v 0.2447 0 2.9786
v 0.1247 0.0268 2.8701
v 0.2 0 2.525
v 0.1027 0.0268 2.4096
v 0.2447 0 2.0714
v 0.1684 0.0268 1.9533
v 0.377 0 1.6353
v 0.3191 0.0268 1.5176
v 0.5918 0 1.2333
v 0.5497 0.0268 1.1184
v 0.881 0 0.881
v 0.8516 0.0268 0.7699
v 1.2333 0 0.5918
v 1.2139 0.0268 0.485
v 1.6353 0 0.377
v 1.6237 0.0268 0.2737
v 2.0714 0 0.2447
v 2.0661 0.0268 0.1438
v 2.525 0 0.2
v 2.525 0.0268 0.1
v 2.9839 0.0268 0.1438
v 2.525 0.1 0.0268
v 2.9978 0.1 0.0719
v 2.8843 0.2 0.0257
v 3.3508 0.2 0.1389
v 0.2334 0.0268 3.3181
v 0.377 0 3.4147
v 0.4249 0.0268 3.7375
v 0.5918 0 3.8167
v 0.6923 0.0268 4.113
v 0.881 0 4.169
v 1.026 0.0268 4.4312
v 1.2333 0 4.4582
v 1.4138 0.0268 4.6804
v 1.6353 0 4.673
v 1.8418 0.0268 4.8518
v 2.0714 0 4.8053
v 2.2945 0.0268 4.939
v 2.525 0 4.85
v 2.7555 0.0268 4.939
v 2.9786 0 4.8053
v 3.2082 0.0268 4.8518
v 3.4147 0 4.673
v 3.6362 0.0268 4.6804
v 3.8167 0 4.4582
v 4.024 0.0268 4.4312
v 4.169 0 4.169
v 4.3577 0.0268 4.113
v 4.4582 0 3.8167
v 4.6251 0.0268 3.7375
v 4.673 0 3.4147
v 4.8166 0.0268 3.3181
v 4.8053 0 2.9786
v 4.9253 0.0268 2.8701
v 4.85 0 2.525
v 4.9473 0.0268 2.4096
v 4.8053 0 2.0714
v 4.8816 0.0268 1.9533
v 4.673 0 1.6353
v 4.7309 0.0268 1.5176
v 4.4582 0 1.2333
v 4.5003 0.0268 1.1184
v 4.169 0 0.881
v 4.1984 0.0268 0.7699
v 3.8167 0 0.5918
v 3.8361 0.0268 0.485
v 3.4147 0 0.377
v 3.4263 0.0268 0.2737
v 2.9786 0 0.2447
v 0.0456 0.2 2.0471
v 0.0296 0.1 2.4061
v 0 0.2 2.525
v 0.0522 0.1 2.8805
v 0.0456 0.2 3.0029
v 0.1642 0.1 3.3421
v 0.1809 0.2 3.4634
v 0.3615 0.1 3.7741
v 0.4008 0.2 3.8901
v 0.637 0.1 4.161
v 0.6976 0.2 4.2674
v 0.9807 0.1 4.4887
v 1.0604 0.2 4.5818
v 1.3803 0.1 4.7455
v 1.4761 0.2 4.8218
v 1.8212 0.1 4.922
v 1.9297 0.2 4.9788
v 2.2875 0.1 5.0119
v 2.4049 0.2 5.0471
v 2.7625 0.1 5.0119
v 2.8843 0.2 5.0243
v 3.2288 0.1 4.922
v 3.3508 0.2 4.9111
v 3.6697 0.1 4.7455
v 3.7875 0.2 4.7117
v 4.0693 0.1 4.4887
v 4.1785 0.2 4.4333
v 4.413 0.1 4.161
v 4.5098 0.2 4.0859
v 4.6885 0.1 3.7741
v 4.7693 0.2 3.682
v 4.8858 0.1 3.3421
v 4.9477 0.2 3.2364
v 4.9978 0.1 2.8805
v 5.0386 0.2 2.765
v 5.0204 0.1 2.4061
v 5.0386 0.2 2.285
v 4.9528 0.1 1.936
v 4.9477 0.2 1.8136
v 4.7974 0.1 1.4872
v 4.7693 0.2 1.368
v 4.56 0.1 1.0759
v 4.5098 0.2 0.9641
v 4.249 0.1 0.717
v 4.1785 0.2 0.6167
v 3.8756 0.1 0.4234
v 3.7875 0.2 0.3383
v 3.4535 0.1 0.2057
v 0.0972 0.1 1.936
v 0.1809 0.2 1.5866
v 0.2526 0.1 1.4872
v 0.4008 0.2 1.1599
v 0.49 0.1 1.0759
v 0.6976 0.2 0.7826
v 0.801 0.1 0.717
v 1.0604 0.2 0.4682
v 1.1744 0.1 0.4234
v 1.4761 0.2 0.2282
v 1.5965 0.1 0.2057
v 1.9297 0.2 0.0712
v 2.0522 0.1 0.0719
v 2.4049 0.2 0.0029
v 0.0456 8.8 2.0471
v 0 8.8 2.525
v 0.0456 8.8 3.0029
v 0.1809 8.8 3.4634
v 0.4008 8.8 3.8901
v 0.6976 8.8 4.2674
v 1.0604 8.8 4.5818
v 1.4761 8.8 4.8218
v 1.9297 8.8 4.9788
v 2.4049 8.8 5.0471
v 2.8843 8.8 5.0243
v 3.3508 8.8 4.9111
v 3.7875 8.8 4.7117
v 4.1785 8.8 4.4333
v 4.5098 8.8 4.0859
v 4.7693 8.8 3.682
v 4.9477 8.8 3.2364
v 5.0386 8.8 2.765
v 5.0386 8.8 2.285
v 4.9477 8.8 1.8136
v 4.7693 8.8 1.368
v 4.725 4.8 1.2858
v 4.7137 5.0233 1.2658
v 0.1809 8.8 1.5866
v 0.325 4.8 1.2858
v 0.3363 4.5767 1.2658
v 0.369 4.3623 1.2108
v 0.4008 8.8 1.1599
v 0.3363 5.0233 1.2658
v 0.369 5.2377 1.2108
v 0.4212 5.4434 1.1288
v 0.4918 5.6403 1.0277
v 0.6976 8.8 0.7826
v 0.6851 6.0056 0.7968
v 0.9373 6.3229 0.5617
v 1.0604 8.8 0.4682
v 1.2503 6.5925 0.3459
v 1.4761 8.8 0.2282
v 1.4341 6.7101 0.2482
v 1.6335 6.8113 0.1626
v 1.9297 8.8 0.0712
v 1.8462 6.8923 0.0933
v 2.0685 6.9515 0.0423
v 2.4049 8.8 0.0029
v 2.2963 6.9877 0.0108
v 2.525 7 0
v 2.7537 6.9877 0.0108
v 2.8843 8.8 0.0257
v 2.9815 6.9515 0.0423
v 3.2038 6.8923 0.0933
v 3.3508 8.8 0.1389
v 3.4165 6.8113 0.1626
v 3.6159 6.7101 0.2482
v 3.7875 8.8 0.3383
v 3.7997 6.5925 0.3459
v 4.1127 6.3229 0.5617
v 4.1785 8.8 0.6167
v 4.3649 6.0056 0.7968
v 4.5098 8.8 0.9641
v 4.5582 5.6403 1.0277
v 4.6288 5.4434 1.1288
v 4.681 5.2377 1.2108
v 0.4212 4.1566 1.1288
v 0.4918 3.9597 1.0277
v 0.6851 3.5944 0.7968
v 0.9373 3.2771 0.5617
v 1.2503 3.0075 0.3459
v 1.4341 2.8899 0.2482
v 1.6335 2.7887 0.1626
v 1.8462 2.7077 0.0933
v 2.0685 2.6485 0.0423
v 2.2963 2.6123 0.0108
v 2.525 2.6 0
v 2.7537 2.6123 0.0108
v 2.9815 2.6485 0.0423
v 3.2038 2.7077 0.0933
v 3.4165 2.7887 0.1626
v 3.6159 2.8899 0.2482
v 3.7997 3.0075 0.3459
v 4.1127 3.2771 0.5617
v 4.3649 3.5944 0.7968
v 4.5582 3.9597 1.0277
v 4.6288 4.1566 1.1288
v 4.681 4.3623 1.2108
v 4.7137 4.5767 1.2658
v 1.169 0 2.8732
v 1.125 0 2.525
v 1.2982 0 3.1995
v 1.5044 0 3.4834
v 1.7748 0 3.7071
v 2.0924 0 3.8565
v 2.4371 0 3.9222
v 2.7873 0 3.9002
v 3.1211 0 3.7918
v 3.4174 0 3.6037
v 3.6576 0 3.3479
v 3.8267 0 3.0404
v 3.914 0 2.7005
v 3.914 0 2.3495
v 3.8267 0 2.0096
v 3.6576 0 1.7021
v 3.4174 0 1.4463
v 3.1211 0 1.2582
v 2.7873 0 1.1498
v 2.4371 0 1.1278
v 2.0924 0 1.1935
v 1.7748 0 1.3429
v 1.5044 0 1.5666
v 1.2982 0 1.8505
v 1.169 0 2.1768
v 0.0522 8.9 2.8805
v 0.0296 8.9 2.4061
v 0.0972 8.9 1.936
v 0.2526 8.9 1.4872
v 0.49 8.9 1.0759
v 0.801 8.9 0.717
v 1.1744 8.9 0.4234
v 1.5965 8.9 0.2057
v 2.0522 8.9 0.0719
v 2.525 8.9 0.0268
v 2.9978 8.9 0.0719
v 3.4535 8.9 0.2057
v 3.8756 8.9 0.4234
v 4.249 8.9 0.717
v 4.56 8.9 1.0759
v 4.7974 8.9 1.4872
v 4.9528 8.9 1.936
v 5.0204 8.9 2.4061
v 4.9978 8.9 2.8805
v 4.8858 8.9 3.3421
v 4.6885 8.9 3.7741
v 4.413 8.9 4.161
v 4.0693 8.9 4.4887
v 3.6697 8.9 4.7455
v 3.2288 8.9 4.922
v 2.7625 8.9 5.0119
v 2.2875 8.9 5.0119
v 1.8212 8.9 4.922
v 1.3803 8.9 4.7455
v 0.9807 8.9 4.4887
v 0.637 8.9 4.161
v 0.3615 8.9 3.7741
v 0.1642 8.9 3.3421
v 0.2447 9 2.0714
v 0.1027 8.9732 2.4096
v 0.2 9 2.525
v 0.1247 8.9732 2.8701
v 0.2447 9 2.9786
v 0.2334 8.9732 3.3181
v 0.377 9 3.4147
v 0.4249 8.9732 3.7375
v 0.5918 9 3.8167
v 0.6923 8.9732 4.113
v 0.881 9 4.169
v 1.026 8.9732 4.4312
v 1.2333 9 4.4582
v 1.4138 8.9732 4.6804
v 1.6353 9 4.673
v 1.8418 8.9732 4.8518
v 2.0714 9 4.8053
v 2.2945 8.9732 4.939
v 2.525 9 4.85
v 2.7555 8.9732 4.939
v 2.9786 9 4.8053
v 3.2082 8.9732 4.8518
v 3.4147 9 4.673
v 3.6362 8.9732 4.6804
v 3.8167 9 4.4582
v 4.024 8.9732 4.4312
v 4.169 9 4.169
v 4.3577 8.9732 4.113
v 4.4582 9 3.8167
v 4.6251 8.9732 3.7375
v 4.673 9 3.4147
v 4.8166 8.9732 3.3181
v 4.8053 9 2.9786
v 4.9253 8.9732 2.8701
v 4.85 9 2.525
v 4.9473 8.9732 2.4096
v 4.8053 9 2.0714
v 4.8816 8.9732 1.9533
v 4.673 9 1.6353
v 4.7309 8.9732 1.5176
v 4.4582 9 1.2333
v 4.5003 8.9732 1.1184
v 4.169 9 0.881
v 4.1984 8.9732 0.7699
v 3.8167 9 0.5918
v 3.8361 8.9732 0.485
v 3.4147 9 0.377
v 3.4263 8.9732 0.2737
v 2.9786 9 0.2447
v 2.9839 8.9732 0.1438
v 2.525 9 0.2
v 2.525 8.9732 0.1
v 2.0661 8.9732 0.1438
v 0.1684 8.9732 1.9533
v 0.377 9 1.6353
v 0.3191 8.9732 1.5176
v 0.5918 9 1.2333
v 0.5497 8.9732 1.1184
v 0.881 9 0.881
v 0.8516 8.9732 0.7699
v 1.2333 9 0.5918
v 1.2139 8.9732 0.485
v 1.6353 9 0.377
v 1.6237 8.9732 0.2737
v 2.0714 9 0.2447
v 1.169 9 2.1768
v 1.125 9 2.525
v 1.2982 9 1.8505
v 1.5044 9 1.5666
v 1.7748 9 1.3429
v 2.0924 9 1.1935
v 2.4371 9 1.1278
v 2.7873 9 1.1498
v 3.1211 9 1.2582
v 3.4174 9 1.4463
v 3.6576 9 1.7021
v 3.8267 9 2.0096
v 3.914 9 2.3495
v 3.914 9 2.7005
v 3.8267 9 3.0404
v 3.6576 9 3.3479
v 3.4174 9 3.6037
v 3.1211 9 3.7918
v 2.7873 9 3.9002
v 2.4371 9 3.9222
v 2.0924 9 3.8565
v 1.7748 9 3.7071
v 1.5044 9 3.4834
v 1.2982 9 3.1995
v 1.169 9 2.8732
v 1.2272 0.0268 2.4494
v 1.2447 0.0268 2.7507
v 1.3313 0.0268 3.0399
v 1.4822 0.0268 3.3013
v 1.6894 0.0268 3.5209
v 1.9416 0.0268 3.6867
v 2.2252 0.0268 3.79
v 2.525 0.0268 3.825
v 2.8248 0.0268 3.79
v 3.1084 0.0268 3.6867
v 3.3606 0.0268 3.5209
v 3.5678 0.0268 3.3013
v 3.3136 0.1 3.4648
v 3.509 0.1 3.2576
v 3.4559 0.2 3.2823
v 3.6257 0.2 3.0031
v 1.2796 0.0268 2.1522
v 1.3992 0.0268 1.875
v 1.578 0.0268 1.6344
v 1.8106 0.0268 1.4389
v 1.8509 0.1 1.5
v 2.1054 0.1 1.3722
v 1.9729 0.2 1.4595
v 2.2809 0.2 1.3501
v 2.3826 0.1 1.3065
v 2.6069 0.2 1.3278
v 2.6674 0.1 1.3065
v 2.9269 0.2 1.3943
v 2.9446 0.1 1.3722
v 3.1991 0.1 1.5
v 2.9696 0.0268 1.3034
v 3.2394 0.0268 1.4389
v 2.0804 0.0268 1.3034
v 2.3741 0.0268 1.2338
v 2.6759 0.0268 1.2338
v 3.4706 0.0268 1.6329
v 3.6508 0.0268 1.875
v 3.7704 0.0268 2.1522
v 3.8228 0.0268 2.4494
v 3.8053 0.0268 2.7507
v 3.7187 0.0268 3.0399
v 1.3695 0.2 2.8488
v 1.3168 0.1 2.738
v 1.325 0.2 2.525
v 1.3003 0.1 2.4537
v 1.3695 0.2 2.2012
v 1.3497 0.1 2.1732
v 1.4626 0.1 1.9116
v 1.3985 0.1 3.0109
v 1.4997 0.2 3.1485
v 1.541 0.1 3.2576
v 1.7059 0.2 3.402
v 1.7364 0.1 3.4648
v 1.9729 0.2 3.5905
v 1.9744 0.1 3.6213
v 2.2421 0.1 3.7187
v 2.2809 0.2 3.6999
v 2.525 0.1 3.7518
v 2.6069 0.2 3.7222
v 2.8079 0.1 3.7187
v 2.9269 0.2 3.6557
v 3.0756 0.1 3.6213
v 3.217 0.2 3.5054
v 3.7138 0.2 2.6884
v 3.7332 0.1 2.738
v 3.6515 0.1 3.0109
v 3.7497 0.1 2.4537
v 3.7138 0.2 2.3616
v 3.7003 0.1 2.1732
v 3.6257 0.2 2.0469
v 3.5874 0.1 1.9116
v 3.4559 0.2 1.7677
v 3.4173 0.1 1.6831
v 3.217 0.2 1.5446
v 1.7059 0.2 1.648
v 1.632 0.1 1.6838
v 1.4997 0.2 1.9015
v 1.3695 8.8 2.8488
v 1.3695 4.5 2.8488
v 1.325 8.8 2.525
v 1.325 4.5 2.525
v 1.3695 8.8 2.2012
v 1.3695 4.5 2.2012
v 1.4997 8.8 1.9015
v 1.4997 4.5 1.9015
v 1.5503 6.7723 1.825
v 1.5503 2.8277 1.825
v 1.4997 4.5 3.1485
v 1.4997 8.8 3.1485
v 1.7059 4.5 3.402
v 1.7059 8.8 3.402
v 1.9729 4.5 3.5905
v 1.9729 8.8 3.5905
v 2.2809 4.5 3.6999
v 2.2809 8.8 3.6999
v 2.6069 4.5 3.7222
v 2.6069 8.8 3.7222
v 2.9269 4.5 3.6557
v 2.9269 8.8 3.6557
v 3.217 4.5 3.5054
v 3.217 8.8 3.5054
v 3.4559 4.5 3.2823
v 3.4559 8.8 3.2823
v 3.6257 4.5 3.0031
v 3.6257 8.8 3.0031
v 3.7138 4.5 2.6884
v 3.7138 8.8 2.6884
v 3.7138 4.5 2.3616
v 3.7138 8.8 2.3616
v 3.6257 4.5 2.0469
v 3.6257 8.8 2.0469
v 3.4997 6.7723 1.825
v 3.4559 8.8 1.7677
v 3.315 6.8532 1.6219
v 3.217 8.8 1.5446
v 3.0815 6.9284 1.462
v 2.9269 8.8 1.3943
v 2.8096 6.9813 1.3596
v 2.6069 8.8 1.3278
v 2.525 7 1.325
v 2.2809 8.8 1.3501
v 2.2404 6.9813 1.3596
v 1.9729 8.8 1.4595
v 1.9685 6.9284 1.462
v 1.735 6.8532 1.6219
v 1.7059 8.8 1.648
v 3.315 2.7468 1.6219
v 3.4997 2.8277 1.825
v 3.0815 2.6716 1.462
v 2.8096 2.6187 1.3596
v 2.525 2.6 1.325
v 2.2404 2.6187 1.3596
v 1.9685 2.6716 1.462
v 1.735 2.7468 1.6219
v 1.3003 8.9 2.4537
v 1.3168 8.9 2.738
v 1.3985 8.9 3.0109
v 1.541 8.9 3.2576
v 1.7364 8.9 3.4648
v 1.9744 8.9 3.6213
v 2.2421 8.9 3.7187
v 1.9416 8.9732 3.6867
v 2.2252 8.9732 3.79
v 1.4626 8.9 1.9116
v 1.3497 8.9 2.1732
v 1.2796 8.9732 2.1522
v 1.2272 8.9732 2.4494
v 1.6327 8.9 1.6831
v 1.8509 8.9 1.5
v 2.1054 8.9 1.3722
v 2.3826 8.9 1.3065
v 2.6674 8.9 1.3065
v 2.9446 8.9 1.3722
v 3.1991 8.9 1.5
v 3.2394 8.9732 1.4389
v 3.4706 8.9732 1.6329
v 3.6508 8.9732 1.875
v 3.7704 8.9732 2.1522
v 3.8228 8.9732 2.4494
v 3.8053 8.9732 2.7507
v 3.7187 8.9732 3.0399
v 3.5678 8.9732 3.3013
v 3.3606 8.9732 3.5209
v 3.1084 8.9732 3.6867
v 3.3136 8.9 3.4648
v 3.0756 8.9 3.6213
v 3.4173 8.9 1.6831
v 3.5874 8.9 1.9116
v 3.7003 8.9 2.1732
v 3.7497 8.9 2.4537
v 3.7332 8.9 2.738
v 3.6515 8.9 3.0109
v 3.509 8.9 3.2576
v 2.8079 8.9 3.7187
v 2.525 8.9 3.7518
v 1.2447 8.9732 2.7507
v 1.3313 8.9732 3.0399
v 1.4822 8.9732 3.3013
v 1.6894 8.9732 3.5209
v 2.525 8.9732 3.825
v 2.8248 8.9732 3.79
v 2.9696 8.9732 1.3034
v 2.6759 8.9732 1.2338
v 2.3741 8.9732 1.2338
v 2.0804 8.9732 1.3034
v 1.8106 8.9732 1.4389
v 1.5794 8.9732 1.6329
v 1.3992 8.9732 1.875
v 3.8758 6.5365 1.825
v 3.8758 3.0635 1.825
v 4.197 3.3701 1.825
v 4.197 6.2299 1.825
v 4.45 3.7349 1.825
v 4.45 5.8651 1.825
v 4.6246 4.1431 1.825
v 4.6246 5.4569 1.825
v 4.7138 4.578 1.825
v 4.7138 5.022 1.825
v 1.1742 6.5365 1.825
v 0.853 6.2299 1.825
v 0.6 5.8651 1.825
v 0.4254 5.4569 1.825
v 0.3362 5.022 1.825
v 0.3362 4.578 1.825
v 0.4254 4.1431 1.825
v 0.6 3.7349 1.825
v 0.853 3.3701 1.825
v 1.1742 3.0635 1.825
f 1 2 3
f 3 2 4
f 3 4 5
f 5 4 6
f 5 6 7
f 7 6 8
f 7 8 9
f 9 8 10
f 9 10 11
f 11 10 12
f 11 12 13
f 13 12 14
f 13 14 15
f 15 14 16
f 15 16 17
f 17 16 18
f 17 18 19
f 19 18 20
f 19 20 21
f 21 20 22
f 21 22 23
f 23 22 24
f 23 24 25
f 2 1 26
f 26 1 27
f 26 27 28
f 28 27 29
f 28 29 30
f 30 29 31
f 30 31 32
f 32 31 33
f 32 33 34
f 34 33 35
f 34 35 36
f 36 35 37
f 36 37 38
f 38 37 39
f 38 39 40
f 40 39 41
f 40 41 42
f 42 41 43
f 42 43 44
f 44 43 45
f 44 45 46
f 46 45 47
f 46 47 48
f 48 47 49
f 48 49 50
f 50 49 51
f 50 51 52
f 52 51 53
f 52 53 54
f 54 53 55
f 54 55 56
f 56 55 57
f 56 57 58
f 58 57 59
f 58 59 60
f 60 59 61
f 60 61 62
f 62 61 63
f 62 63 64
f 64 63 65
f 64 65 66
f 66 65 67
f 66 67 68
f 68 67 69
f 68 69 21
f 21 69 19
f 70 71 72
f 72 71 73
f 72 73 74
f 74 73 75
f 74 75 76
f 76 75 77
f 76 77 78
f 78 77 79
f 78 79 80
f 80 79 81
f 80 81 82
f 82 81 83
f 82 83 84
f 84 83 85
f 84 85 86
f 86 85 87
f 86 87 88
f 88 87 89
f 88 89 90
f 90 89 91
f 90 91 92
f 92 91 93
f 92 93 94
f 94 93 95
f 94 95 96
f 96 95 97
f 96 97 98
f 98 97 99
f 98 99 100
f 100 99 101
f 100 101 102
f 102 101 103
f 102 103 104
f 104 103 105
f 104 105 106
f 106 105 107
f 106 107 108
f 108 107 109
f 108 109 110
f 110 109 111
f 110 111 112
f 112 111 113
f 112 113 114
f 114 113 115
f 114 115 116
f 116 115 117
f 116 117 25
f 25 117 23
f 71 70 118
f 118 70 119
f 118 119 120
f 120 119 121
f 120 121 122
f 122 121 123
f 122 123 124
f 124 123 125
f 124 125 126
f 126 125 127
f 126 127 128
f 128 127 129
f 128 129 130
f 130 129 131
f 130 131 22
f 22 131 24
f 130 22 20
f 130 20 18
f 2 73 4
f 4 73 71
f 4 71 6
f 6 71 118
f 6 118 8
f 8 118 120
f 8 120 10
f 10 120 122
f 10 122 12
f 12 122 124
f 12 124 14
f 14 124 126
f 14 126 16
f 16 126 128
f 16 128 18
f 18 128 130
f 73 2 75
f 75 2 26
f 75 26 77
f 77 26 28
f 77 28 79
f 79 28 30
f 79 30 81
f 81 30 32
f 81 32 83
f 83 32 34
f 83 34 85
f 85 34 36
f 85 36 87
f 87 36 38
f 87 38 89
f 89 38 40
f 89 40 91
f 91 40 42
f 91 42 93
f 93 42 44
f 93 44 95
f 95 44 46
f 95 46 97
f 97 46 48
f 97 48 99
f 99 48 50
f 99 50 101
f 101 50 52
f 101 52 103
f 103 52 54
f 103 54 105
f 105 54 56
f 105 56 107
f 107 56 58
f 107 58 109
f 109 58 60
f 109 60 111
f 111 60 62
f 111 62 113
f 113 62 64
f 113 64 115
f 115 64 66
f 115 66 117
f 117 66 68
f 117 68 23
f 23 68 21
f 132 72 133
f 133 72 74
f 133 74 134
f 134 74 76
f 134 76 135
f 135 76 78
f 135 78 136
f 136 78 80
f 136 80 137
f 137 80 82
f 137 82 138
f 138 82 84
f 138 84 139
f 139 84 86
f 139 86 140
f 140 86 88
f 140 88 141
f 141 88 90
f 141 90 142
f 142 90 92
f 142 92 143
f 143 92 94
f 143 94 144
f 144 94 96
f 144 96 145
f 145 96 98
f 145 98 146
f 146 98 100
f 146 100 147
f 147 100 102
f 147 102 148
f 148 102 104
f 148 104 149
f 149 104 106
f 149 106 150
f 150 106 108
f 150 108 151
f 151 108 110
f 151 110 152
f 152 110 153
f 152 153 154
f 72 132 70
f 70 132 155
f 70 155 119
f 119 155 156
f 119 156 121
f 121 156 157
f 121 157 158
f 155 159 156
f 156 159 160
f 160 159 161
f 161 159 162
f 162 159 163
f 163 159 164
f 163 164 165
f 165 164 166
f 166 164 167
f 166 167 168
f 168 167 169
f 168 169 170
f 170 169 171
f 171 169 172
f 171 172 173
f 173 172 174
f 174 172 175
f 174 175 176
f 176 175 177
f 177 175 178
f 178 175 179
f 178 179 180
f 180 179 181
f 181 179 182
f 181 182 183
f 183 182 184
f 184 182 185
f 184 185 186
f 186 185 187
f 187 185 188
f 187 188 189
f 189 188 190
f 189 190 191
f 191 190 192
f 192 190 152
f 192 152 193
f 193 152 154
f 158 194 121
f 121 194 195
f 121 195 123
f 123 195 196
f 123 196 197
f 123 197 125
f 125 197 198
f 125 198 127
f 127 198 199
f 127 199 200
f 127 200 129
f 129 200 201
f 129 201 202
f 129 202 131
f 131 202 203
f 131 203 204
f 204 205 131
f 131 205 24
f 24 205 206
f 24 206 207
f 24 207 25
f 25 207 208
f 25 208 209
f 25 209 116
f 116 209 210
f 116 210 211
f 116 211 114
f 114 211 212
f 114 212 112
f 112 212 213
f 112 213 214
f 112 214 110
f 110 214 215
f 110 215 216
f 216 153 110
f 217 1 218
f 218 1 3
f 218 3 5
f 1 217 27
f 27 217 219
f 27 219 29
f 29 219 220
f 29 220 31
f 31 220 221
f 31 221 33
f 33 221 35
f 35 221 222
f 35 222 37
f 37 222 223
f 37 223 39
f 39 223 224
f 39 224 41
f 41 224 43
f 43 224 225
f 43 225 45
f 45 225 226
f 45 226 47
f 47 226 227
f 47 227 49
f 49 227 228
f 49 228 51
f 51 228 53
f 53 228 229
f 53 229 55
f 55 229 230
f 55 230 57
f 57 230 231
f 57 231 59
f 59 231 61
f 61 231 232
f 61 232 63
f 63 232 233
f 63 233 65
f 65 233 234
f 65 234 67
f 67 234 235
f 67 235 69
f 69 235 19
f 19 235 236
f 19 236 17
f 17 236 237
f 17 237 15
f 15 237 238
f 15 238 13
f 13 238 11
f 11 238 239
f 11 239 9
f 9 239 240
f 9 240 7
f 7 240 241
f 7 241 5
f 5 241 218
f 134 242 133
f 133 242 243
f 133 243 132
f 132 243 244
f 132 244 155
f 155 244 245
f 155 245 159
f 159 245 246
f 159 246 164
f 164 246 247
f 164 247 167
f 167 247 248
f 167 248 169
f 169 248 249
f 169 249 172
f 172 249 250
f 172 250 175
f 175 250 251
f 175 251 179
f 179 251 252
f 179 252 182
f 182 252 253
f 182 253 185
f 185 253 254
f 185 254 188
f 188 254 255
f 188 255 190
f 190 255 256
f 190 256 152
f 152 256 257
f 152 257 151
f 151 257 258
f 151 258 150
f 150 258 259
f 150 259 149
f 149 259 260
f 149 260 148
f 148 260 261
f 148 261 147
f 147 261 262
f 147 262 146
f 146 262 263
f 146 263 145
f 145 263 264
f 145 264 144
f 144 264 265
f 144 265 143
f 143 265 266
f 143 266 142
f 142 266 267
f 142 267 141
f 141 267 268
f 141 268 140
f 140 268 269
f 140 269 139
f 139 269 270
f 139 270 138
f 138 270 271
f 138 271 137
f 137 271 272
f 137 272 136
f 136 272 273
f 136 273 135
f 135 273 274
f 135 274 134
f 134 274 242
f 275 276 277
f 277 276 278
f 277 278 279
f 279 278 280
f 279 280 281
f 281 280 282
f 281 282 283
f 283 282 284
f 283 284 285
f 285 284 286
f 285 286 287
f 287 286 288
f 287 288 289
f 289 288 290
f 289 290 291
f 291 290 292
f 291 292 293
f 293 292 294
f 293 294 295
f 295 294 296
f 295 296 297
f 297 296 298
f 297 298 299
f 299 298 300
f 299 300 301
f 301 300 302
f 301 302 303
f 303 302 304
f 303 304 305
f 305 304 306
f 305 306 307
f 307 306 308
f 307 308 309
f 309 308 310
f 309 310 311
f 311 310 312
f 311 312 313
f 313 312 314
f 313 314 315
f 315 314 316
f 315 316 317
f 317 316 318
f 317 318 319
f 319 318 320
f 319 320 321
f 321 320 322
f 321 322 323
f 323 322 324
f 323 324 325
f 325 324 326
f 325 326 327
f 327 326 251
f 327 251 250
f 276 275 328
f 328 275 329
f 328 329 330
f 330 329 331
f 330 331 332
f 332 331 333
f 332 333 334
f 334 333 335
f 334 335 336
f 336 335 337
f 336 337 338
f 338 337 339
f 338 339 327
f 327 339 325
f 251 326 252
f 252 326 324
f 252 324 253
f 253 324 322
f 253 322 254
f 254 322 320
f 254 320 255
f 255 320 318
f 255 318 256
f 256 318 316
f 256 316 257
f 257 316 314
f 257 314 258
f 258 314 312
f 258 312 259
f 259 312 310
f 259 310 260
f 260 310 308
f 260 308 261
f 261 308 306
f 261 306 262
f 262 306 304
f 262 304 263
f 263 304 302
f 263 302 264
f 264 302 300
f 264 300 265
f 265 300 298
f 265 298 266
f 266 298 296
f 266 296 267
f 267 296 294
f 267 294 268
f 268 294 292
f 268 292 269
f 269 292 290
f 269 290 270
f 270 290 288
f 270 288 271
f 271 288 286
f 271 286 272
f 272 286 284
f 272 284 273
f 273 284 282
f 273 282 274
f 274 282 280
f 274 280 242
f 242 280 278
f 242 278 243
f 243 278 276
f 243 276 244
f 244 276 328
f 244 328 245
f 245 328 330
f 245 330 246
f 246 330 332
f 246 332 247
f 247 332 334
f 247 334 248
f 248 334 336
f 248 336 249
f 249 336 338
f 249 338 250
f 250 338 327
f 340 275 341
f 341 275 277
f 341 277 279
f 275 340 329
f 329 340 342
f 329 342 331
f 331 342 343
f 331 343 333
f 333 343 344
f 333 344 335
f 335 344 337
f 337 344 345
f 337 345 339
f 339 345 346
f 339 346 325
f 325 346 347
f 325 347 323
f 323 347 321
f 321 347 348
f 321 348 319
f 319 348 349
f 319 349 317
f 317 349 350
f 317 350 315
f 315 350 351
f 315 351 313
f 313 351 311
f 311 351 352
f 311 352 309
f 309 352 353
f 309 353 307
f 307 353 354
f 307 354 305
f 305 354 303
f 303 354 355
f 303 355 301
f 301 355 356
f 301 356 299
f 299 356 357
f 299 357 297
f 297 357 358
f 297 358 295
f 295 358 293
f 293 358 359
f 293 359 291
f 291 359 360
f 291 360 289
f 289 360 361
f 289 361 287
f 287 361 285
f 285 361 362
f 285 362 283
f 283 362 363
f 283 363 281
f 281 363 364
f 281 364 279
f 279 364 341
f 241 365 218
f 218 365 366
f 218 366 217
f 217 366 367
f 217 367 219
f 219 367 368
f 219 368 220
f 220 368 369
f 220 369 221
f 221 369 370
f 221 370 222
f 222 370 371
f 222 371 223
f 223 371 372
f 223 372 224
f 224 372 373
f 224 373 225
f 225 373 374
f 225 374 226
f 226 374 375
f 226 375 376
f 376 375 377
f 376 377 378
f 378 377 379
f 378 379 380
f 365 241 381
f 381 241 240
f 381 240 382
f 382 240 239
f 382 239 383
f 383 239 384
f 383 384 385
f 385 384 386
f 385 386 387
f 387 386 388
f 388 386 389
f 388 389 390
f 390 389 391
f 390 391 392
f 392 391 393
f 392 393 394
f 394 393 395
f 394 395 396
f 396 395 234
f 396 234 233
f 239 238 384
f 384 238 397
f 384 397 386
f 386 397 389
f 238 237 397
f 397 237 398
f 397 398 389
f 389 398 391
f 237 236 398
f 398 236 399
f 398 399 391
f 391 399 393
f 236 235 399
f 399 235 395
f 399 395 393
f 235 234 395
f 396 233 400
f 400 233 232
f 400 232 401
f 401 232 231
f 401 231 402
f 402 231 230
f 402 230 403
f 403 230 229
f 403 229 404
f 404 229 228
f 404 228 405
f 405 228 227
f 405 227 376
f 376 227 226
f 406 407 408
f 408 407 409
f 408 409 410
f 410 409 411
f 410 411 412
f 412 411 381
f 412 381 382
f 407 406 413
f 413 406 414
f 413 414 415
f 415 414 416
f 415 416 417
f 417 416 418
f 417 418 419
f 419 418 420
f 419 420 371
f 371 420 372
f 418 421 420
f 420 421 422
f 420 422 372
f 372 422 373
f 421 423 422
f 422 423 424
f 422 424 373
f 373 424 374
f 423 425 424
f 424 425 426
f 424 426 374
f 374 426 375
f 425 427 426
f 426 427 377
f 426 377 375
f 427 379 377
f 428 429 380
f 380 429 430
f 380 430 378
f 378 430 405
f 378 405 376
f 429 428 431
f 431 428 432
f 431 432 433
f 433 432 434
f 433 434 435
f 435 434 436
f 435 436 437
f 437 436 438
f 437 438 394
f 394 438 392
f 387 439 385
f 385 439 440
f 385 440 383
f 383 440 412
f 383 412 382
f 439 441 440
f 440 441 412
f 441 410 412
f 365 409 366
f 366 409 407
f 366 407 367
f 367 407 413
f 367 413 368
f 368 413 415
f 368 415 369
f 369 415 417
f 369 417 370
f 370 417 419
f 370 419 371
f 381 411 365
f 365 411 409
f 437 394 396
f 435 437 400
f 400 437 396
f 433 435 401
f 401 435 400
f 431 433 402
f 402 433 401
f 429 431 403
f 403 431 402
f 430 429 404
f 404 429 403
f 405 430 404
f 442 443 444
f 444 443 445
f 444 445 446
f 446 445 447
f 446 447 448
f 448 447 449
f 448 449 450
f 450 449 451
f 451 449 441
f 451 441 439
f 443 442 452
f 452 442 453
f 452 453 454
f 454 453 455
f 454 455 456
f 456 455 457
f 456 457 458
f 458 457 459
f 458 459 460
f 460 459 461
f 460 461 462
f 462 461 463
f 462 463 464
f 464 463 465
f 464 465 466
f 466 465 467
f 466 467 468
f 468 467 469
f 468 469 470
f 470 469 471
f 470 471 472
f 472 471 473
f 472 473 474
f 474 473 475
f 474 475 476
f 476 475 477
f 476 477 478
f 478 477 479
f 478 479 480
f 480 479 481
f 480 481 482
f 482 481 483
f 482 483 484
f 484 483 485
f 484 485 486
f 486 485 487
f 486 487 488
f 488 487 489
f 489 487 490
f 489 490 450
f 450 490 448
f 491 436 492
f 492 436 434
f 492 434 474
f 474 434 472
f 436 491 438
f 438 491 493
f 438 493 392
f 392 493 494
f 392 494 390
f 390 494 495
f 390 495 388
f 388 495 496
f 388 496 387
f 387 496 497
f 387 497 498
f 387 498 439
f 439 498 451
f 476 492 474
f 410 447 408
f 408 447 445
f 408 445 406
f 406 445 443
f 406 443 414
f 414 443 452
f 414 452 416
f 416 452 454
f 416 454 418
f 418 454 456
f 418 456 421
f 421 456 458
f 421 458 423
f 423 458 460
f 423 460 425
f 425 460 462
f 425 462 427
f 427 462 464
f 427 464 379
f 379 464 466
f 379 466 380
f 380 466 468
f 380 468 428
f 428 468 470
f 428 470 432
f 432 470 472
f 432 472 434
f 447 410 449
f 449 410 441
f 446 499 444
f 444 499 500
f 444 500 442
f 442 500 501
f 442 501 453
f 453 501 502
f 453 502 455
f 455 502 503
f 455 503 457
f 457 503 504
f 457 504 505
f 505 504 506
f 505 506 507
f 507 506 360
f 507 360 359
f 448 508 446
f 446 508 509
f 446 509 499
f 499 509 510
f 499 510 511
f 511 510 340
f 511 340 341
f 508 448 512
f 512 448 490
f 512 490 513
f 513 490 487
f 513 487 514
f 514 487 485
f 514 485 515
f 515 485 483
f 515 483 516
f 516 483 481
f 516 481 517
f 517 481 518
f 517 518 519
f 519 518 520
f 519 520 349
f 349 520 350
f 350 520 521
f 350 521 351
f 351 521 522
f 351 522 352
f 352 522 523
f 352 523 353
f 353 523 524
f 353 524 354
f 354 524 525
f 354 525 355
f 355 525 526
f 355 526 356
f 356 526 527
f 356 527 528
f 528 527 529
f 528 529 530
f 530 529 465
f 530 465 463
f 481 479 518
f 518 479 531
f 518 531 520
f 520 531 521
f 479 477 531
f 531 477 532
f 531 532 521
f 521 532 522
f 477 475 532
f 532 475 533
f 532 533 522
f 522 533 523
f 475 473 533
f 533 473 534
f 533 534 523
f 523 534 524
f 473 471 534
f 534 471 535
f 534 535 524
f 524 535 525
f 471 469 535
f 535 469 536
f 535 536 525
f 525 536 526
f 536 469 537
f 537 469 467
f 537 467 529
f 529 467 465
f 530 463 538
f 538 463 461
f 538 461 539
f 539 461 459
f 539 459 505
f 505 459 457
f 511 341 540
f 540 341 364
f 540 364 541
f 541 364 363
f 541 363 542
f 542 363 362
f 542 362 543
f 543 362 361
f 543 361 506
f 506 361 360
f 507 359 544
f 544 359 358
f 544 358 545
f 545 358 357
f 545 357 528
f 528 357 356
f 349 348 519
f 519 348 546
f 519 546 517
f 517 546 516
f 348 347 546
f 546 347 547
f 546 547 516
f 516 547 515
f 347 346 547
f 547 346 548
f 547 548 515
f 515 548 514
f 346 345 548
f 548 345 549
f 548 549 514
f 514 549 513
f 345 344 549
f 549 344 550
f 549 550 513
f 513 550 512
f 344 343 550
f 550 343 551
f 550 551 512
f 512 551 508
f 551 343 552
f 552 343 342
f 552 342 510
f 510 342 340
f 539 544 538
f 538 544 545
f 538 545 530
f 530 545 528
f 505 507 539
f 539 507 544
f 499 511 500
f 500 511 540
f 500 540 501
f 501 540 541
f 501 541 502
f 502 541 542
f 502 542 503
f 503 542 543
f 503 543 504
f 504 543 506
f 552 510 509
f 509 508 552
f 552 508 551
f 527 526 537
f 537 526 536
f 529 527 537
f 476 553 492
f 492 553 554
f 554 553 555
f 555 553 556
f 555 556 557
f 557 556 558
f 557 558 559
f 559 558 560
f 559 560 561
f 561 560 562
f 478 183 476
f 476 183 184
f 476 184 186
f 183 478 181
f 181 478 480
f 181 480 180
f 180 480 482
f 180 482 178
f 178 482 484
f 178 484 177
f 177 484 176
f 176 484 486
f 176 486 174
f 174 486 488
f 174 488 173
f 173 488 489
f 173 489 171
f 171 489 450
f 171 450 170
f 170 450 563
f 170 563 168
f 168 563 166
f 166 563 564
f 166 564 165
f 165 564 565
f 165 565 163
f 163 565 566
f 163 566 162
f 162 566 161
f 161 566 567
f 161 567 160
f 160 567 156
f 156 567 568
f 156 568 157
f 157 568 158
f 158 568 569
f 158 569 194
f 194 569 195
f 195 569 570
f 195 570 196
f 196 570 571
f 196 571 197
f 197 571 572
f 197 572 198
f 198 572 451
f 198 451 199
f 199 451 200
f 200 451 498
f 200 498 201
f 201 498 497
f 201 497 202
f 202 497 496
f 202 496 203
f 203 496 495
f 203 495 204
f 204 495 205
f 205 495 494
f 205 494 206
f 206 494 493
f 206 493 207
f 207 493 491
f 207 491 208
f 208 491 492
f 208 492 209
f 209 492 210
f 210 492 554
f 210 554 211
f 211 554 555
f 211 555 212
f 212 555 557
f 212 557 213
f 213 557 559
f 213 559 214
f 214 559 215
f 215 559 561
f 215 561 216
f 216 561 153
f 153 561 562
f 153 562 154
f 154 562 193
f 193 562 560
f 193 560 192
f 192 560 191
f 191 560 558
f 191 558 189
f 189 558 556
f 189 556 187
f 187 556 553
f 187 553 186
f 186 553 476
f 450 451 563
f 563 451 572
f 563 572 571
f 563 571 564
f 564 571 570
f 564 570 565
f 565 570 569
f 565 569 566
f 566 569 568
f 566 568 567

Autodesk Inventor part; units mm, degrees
ref_plane "YZ Plane" through (0, 0, 0) normal (1, 0, 0) x (0, 1, 0)
ref_plane "XZ Plane" through (0, 0, 0) normal (0, 1, 0) x (-1, 0, 0)
sketch "Sketch1" plane through (0, 0, 0) normal (0, 1, 0) x (-1, 0, 0)
  circle A0 centre (-2.525, 2.525) radius 1.2
  circle A1 centre (-2.525, 2.525) radius 2.525
  line L0 (0, 0) -> (-7.3028, 0) construction
  line L1 (0, 0) -> (0, 4.3038) construction
  dimension "d0" = 2.4
  dimension "d1" = 5.05
extrude "Extrusion1" add sketch "Sketch1" along normal blind 9
ref_plane "Work Plane1" through (2.525, 0, 1.325) normal (0, 0, 1) x (1, 0, 0)
ref_plane "screwMaxDist" through (2.525, 0, 1.825) normal (0, 0, 1) x (1, 0, 0)
sketch "Sketch2" plane through (0, 0, 0) normal (0, 0, 1) x (1, 0, 0)
  line L0 (5.05, 9) -> (0, 9) projected
  circle A0 centre (2.525, 4.8) radius 2.2
  line L1 (5.05, 9) -> (0, 9) projected
  line L2 (5.05, 0) -> (0, 0) projected
  line L3 (0, 0) -> (0, 9) projected
  line L4 (0, 7) -> (5.05, 7)
  line L5 (5.05, 0) -> (5.05, 9) projected
  dimension "d5" = 4.4
  dimension "d15" = 2
  dimension "d16" = 2.525
  dimension "d17" = 2.525
extrude "Extrusion2" cut sketch "Sketch2" along normal up to surface (1.825 mm away) contours A0
fillet "Fillet1" radius 0.2 4 edges at (3.725, 9, 2.525) (3.725, 0, 2.525) (5.05, 9, 2.525) (5.05, 0, 2.525)
equation "\"d16\" = d17"
properties part number "motor_shaft_adapter" material "ABS Plastic"
